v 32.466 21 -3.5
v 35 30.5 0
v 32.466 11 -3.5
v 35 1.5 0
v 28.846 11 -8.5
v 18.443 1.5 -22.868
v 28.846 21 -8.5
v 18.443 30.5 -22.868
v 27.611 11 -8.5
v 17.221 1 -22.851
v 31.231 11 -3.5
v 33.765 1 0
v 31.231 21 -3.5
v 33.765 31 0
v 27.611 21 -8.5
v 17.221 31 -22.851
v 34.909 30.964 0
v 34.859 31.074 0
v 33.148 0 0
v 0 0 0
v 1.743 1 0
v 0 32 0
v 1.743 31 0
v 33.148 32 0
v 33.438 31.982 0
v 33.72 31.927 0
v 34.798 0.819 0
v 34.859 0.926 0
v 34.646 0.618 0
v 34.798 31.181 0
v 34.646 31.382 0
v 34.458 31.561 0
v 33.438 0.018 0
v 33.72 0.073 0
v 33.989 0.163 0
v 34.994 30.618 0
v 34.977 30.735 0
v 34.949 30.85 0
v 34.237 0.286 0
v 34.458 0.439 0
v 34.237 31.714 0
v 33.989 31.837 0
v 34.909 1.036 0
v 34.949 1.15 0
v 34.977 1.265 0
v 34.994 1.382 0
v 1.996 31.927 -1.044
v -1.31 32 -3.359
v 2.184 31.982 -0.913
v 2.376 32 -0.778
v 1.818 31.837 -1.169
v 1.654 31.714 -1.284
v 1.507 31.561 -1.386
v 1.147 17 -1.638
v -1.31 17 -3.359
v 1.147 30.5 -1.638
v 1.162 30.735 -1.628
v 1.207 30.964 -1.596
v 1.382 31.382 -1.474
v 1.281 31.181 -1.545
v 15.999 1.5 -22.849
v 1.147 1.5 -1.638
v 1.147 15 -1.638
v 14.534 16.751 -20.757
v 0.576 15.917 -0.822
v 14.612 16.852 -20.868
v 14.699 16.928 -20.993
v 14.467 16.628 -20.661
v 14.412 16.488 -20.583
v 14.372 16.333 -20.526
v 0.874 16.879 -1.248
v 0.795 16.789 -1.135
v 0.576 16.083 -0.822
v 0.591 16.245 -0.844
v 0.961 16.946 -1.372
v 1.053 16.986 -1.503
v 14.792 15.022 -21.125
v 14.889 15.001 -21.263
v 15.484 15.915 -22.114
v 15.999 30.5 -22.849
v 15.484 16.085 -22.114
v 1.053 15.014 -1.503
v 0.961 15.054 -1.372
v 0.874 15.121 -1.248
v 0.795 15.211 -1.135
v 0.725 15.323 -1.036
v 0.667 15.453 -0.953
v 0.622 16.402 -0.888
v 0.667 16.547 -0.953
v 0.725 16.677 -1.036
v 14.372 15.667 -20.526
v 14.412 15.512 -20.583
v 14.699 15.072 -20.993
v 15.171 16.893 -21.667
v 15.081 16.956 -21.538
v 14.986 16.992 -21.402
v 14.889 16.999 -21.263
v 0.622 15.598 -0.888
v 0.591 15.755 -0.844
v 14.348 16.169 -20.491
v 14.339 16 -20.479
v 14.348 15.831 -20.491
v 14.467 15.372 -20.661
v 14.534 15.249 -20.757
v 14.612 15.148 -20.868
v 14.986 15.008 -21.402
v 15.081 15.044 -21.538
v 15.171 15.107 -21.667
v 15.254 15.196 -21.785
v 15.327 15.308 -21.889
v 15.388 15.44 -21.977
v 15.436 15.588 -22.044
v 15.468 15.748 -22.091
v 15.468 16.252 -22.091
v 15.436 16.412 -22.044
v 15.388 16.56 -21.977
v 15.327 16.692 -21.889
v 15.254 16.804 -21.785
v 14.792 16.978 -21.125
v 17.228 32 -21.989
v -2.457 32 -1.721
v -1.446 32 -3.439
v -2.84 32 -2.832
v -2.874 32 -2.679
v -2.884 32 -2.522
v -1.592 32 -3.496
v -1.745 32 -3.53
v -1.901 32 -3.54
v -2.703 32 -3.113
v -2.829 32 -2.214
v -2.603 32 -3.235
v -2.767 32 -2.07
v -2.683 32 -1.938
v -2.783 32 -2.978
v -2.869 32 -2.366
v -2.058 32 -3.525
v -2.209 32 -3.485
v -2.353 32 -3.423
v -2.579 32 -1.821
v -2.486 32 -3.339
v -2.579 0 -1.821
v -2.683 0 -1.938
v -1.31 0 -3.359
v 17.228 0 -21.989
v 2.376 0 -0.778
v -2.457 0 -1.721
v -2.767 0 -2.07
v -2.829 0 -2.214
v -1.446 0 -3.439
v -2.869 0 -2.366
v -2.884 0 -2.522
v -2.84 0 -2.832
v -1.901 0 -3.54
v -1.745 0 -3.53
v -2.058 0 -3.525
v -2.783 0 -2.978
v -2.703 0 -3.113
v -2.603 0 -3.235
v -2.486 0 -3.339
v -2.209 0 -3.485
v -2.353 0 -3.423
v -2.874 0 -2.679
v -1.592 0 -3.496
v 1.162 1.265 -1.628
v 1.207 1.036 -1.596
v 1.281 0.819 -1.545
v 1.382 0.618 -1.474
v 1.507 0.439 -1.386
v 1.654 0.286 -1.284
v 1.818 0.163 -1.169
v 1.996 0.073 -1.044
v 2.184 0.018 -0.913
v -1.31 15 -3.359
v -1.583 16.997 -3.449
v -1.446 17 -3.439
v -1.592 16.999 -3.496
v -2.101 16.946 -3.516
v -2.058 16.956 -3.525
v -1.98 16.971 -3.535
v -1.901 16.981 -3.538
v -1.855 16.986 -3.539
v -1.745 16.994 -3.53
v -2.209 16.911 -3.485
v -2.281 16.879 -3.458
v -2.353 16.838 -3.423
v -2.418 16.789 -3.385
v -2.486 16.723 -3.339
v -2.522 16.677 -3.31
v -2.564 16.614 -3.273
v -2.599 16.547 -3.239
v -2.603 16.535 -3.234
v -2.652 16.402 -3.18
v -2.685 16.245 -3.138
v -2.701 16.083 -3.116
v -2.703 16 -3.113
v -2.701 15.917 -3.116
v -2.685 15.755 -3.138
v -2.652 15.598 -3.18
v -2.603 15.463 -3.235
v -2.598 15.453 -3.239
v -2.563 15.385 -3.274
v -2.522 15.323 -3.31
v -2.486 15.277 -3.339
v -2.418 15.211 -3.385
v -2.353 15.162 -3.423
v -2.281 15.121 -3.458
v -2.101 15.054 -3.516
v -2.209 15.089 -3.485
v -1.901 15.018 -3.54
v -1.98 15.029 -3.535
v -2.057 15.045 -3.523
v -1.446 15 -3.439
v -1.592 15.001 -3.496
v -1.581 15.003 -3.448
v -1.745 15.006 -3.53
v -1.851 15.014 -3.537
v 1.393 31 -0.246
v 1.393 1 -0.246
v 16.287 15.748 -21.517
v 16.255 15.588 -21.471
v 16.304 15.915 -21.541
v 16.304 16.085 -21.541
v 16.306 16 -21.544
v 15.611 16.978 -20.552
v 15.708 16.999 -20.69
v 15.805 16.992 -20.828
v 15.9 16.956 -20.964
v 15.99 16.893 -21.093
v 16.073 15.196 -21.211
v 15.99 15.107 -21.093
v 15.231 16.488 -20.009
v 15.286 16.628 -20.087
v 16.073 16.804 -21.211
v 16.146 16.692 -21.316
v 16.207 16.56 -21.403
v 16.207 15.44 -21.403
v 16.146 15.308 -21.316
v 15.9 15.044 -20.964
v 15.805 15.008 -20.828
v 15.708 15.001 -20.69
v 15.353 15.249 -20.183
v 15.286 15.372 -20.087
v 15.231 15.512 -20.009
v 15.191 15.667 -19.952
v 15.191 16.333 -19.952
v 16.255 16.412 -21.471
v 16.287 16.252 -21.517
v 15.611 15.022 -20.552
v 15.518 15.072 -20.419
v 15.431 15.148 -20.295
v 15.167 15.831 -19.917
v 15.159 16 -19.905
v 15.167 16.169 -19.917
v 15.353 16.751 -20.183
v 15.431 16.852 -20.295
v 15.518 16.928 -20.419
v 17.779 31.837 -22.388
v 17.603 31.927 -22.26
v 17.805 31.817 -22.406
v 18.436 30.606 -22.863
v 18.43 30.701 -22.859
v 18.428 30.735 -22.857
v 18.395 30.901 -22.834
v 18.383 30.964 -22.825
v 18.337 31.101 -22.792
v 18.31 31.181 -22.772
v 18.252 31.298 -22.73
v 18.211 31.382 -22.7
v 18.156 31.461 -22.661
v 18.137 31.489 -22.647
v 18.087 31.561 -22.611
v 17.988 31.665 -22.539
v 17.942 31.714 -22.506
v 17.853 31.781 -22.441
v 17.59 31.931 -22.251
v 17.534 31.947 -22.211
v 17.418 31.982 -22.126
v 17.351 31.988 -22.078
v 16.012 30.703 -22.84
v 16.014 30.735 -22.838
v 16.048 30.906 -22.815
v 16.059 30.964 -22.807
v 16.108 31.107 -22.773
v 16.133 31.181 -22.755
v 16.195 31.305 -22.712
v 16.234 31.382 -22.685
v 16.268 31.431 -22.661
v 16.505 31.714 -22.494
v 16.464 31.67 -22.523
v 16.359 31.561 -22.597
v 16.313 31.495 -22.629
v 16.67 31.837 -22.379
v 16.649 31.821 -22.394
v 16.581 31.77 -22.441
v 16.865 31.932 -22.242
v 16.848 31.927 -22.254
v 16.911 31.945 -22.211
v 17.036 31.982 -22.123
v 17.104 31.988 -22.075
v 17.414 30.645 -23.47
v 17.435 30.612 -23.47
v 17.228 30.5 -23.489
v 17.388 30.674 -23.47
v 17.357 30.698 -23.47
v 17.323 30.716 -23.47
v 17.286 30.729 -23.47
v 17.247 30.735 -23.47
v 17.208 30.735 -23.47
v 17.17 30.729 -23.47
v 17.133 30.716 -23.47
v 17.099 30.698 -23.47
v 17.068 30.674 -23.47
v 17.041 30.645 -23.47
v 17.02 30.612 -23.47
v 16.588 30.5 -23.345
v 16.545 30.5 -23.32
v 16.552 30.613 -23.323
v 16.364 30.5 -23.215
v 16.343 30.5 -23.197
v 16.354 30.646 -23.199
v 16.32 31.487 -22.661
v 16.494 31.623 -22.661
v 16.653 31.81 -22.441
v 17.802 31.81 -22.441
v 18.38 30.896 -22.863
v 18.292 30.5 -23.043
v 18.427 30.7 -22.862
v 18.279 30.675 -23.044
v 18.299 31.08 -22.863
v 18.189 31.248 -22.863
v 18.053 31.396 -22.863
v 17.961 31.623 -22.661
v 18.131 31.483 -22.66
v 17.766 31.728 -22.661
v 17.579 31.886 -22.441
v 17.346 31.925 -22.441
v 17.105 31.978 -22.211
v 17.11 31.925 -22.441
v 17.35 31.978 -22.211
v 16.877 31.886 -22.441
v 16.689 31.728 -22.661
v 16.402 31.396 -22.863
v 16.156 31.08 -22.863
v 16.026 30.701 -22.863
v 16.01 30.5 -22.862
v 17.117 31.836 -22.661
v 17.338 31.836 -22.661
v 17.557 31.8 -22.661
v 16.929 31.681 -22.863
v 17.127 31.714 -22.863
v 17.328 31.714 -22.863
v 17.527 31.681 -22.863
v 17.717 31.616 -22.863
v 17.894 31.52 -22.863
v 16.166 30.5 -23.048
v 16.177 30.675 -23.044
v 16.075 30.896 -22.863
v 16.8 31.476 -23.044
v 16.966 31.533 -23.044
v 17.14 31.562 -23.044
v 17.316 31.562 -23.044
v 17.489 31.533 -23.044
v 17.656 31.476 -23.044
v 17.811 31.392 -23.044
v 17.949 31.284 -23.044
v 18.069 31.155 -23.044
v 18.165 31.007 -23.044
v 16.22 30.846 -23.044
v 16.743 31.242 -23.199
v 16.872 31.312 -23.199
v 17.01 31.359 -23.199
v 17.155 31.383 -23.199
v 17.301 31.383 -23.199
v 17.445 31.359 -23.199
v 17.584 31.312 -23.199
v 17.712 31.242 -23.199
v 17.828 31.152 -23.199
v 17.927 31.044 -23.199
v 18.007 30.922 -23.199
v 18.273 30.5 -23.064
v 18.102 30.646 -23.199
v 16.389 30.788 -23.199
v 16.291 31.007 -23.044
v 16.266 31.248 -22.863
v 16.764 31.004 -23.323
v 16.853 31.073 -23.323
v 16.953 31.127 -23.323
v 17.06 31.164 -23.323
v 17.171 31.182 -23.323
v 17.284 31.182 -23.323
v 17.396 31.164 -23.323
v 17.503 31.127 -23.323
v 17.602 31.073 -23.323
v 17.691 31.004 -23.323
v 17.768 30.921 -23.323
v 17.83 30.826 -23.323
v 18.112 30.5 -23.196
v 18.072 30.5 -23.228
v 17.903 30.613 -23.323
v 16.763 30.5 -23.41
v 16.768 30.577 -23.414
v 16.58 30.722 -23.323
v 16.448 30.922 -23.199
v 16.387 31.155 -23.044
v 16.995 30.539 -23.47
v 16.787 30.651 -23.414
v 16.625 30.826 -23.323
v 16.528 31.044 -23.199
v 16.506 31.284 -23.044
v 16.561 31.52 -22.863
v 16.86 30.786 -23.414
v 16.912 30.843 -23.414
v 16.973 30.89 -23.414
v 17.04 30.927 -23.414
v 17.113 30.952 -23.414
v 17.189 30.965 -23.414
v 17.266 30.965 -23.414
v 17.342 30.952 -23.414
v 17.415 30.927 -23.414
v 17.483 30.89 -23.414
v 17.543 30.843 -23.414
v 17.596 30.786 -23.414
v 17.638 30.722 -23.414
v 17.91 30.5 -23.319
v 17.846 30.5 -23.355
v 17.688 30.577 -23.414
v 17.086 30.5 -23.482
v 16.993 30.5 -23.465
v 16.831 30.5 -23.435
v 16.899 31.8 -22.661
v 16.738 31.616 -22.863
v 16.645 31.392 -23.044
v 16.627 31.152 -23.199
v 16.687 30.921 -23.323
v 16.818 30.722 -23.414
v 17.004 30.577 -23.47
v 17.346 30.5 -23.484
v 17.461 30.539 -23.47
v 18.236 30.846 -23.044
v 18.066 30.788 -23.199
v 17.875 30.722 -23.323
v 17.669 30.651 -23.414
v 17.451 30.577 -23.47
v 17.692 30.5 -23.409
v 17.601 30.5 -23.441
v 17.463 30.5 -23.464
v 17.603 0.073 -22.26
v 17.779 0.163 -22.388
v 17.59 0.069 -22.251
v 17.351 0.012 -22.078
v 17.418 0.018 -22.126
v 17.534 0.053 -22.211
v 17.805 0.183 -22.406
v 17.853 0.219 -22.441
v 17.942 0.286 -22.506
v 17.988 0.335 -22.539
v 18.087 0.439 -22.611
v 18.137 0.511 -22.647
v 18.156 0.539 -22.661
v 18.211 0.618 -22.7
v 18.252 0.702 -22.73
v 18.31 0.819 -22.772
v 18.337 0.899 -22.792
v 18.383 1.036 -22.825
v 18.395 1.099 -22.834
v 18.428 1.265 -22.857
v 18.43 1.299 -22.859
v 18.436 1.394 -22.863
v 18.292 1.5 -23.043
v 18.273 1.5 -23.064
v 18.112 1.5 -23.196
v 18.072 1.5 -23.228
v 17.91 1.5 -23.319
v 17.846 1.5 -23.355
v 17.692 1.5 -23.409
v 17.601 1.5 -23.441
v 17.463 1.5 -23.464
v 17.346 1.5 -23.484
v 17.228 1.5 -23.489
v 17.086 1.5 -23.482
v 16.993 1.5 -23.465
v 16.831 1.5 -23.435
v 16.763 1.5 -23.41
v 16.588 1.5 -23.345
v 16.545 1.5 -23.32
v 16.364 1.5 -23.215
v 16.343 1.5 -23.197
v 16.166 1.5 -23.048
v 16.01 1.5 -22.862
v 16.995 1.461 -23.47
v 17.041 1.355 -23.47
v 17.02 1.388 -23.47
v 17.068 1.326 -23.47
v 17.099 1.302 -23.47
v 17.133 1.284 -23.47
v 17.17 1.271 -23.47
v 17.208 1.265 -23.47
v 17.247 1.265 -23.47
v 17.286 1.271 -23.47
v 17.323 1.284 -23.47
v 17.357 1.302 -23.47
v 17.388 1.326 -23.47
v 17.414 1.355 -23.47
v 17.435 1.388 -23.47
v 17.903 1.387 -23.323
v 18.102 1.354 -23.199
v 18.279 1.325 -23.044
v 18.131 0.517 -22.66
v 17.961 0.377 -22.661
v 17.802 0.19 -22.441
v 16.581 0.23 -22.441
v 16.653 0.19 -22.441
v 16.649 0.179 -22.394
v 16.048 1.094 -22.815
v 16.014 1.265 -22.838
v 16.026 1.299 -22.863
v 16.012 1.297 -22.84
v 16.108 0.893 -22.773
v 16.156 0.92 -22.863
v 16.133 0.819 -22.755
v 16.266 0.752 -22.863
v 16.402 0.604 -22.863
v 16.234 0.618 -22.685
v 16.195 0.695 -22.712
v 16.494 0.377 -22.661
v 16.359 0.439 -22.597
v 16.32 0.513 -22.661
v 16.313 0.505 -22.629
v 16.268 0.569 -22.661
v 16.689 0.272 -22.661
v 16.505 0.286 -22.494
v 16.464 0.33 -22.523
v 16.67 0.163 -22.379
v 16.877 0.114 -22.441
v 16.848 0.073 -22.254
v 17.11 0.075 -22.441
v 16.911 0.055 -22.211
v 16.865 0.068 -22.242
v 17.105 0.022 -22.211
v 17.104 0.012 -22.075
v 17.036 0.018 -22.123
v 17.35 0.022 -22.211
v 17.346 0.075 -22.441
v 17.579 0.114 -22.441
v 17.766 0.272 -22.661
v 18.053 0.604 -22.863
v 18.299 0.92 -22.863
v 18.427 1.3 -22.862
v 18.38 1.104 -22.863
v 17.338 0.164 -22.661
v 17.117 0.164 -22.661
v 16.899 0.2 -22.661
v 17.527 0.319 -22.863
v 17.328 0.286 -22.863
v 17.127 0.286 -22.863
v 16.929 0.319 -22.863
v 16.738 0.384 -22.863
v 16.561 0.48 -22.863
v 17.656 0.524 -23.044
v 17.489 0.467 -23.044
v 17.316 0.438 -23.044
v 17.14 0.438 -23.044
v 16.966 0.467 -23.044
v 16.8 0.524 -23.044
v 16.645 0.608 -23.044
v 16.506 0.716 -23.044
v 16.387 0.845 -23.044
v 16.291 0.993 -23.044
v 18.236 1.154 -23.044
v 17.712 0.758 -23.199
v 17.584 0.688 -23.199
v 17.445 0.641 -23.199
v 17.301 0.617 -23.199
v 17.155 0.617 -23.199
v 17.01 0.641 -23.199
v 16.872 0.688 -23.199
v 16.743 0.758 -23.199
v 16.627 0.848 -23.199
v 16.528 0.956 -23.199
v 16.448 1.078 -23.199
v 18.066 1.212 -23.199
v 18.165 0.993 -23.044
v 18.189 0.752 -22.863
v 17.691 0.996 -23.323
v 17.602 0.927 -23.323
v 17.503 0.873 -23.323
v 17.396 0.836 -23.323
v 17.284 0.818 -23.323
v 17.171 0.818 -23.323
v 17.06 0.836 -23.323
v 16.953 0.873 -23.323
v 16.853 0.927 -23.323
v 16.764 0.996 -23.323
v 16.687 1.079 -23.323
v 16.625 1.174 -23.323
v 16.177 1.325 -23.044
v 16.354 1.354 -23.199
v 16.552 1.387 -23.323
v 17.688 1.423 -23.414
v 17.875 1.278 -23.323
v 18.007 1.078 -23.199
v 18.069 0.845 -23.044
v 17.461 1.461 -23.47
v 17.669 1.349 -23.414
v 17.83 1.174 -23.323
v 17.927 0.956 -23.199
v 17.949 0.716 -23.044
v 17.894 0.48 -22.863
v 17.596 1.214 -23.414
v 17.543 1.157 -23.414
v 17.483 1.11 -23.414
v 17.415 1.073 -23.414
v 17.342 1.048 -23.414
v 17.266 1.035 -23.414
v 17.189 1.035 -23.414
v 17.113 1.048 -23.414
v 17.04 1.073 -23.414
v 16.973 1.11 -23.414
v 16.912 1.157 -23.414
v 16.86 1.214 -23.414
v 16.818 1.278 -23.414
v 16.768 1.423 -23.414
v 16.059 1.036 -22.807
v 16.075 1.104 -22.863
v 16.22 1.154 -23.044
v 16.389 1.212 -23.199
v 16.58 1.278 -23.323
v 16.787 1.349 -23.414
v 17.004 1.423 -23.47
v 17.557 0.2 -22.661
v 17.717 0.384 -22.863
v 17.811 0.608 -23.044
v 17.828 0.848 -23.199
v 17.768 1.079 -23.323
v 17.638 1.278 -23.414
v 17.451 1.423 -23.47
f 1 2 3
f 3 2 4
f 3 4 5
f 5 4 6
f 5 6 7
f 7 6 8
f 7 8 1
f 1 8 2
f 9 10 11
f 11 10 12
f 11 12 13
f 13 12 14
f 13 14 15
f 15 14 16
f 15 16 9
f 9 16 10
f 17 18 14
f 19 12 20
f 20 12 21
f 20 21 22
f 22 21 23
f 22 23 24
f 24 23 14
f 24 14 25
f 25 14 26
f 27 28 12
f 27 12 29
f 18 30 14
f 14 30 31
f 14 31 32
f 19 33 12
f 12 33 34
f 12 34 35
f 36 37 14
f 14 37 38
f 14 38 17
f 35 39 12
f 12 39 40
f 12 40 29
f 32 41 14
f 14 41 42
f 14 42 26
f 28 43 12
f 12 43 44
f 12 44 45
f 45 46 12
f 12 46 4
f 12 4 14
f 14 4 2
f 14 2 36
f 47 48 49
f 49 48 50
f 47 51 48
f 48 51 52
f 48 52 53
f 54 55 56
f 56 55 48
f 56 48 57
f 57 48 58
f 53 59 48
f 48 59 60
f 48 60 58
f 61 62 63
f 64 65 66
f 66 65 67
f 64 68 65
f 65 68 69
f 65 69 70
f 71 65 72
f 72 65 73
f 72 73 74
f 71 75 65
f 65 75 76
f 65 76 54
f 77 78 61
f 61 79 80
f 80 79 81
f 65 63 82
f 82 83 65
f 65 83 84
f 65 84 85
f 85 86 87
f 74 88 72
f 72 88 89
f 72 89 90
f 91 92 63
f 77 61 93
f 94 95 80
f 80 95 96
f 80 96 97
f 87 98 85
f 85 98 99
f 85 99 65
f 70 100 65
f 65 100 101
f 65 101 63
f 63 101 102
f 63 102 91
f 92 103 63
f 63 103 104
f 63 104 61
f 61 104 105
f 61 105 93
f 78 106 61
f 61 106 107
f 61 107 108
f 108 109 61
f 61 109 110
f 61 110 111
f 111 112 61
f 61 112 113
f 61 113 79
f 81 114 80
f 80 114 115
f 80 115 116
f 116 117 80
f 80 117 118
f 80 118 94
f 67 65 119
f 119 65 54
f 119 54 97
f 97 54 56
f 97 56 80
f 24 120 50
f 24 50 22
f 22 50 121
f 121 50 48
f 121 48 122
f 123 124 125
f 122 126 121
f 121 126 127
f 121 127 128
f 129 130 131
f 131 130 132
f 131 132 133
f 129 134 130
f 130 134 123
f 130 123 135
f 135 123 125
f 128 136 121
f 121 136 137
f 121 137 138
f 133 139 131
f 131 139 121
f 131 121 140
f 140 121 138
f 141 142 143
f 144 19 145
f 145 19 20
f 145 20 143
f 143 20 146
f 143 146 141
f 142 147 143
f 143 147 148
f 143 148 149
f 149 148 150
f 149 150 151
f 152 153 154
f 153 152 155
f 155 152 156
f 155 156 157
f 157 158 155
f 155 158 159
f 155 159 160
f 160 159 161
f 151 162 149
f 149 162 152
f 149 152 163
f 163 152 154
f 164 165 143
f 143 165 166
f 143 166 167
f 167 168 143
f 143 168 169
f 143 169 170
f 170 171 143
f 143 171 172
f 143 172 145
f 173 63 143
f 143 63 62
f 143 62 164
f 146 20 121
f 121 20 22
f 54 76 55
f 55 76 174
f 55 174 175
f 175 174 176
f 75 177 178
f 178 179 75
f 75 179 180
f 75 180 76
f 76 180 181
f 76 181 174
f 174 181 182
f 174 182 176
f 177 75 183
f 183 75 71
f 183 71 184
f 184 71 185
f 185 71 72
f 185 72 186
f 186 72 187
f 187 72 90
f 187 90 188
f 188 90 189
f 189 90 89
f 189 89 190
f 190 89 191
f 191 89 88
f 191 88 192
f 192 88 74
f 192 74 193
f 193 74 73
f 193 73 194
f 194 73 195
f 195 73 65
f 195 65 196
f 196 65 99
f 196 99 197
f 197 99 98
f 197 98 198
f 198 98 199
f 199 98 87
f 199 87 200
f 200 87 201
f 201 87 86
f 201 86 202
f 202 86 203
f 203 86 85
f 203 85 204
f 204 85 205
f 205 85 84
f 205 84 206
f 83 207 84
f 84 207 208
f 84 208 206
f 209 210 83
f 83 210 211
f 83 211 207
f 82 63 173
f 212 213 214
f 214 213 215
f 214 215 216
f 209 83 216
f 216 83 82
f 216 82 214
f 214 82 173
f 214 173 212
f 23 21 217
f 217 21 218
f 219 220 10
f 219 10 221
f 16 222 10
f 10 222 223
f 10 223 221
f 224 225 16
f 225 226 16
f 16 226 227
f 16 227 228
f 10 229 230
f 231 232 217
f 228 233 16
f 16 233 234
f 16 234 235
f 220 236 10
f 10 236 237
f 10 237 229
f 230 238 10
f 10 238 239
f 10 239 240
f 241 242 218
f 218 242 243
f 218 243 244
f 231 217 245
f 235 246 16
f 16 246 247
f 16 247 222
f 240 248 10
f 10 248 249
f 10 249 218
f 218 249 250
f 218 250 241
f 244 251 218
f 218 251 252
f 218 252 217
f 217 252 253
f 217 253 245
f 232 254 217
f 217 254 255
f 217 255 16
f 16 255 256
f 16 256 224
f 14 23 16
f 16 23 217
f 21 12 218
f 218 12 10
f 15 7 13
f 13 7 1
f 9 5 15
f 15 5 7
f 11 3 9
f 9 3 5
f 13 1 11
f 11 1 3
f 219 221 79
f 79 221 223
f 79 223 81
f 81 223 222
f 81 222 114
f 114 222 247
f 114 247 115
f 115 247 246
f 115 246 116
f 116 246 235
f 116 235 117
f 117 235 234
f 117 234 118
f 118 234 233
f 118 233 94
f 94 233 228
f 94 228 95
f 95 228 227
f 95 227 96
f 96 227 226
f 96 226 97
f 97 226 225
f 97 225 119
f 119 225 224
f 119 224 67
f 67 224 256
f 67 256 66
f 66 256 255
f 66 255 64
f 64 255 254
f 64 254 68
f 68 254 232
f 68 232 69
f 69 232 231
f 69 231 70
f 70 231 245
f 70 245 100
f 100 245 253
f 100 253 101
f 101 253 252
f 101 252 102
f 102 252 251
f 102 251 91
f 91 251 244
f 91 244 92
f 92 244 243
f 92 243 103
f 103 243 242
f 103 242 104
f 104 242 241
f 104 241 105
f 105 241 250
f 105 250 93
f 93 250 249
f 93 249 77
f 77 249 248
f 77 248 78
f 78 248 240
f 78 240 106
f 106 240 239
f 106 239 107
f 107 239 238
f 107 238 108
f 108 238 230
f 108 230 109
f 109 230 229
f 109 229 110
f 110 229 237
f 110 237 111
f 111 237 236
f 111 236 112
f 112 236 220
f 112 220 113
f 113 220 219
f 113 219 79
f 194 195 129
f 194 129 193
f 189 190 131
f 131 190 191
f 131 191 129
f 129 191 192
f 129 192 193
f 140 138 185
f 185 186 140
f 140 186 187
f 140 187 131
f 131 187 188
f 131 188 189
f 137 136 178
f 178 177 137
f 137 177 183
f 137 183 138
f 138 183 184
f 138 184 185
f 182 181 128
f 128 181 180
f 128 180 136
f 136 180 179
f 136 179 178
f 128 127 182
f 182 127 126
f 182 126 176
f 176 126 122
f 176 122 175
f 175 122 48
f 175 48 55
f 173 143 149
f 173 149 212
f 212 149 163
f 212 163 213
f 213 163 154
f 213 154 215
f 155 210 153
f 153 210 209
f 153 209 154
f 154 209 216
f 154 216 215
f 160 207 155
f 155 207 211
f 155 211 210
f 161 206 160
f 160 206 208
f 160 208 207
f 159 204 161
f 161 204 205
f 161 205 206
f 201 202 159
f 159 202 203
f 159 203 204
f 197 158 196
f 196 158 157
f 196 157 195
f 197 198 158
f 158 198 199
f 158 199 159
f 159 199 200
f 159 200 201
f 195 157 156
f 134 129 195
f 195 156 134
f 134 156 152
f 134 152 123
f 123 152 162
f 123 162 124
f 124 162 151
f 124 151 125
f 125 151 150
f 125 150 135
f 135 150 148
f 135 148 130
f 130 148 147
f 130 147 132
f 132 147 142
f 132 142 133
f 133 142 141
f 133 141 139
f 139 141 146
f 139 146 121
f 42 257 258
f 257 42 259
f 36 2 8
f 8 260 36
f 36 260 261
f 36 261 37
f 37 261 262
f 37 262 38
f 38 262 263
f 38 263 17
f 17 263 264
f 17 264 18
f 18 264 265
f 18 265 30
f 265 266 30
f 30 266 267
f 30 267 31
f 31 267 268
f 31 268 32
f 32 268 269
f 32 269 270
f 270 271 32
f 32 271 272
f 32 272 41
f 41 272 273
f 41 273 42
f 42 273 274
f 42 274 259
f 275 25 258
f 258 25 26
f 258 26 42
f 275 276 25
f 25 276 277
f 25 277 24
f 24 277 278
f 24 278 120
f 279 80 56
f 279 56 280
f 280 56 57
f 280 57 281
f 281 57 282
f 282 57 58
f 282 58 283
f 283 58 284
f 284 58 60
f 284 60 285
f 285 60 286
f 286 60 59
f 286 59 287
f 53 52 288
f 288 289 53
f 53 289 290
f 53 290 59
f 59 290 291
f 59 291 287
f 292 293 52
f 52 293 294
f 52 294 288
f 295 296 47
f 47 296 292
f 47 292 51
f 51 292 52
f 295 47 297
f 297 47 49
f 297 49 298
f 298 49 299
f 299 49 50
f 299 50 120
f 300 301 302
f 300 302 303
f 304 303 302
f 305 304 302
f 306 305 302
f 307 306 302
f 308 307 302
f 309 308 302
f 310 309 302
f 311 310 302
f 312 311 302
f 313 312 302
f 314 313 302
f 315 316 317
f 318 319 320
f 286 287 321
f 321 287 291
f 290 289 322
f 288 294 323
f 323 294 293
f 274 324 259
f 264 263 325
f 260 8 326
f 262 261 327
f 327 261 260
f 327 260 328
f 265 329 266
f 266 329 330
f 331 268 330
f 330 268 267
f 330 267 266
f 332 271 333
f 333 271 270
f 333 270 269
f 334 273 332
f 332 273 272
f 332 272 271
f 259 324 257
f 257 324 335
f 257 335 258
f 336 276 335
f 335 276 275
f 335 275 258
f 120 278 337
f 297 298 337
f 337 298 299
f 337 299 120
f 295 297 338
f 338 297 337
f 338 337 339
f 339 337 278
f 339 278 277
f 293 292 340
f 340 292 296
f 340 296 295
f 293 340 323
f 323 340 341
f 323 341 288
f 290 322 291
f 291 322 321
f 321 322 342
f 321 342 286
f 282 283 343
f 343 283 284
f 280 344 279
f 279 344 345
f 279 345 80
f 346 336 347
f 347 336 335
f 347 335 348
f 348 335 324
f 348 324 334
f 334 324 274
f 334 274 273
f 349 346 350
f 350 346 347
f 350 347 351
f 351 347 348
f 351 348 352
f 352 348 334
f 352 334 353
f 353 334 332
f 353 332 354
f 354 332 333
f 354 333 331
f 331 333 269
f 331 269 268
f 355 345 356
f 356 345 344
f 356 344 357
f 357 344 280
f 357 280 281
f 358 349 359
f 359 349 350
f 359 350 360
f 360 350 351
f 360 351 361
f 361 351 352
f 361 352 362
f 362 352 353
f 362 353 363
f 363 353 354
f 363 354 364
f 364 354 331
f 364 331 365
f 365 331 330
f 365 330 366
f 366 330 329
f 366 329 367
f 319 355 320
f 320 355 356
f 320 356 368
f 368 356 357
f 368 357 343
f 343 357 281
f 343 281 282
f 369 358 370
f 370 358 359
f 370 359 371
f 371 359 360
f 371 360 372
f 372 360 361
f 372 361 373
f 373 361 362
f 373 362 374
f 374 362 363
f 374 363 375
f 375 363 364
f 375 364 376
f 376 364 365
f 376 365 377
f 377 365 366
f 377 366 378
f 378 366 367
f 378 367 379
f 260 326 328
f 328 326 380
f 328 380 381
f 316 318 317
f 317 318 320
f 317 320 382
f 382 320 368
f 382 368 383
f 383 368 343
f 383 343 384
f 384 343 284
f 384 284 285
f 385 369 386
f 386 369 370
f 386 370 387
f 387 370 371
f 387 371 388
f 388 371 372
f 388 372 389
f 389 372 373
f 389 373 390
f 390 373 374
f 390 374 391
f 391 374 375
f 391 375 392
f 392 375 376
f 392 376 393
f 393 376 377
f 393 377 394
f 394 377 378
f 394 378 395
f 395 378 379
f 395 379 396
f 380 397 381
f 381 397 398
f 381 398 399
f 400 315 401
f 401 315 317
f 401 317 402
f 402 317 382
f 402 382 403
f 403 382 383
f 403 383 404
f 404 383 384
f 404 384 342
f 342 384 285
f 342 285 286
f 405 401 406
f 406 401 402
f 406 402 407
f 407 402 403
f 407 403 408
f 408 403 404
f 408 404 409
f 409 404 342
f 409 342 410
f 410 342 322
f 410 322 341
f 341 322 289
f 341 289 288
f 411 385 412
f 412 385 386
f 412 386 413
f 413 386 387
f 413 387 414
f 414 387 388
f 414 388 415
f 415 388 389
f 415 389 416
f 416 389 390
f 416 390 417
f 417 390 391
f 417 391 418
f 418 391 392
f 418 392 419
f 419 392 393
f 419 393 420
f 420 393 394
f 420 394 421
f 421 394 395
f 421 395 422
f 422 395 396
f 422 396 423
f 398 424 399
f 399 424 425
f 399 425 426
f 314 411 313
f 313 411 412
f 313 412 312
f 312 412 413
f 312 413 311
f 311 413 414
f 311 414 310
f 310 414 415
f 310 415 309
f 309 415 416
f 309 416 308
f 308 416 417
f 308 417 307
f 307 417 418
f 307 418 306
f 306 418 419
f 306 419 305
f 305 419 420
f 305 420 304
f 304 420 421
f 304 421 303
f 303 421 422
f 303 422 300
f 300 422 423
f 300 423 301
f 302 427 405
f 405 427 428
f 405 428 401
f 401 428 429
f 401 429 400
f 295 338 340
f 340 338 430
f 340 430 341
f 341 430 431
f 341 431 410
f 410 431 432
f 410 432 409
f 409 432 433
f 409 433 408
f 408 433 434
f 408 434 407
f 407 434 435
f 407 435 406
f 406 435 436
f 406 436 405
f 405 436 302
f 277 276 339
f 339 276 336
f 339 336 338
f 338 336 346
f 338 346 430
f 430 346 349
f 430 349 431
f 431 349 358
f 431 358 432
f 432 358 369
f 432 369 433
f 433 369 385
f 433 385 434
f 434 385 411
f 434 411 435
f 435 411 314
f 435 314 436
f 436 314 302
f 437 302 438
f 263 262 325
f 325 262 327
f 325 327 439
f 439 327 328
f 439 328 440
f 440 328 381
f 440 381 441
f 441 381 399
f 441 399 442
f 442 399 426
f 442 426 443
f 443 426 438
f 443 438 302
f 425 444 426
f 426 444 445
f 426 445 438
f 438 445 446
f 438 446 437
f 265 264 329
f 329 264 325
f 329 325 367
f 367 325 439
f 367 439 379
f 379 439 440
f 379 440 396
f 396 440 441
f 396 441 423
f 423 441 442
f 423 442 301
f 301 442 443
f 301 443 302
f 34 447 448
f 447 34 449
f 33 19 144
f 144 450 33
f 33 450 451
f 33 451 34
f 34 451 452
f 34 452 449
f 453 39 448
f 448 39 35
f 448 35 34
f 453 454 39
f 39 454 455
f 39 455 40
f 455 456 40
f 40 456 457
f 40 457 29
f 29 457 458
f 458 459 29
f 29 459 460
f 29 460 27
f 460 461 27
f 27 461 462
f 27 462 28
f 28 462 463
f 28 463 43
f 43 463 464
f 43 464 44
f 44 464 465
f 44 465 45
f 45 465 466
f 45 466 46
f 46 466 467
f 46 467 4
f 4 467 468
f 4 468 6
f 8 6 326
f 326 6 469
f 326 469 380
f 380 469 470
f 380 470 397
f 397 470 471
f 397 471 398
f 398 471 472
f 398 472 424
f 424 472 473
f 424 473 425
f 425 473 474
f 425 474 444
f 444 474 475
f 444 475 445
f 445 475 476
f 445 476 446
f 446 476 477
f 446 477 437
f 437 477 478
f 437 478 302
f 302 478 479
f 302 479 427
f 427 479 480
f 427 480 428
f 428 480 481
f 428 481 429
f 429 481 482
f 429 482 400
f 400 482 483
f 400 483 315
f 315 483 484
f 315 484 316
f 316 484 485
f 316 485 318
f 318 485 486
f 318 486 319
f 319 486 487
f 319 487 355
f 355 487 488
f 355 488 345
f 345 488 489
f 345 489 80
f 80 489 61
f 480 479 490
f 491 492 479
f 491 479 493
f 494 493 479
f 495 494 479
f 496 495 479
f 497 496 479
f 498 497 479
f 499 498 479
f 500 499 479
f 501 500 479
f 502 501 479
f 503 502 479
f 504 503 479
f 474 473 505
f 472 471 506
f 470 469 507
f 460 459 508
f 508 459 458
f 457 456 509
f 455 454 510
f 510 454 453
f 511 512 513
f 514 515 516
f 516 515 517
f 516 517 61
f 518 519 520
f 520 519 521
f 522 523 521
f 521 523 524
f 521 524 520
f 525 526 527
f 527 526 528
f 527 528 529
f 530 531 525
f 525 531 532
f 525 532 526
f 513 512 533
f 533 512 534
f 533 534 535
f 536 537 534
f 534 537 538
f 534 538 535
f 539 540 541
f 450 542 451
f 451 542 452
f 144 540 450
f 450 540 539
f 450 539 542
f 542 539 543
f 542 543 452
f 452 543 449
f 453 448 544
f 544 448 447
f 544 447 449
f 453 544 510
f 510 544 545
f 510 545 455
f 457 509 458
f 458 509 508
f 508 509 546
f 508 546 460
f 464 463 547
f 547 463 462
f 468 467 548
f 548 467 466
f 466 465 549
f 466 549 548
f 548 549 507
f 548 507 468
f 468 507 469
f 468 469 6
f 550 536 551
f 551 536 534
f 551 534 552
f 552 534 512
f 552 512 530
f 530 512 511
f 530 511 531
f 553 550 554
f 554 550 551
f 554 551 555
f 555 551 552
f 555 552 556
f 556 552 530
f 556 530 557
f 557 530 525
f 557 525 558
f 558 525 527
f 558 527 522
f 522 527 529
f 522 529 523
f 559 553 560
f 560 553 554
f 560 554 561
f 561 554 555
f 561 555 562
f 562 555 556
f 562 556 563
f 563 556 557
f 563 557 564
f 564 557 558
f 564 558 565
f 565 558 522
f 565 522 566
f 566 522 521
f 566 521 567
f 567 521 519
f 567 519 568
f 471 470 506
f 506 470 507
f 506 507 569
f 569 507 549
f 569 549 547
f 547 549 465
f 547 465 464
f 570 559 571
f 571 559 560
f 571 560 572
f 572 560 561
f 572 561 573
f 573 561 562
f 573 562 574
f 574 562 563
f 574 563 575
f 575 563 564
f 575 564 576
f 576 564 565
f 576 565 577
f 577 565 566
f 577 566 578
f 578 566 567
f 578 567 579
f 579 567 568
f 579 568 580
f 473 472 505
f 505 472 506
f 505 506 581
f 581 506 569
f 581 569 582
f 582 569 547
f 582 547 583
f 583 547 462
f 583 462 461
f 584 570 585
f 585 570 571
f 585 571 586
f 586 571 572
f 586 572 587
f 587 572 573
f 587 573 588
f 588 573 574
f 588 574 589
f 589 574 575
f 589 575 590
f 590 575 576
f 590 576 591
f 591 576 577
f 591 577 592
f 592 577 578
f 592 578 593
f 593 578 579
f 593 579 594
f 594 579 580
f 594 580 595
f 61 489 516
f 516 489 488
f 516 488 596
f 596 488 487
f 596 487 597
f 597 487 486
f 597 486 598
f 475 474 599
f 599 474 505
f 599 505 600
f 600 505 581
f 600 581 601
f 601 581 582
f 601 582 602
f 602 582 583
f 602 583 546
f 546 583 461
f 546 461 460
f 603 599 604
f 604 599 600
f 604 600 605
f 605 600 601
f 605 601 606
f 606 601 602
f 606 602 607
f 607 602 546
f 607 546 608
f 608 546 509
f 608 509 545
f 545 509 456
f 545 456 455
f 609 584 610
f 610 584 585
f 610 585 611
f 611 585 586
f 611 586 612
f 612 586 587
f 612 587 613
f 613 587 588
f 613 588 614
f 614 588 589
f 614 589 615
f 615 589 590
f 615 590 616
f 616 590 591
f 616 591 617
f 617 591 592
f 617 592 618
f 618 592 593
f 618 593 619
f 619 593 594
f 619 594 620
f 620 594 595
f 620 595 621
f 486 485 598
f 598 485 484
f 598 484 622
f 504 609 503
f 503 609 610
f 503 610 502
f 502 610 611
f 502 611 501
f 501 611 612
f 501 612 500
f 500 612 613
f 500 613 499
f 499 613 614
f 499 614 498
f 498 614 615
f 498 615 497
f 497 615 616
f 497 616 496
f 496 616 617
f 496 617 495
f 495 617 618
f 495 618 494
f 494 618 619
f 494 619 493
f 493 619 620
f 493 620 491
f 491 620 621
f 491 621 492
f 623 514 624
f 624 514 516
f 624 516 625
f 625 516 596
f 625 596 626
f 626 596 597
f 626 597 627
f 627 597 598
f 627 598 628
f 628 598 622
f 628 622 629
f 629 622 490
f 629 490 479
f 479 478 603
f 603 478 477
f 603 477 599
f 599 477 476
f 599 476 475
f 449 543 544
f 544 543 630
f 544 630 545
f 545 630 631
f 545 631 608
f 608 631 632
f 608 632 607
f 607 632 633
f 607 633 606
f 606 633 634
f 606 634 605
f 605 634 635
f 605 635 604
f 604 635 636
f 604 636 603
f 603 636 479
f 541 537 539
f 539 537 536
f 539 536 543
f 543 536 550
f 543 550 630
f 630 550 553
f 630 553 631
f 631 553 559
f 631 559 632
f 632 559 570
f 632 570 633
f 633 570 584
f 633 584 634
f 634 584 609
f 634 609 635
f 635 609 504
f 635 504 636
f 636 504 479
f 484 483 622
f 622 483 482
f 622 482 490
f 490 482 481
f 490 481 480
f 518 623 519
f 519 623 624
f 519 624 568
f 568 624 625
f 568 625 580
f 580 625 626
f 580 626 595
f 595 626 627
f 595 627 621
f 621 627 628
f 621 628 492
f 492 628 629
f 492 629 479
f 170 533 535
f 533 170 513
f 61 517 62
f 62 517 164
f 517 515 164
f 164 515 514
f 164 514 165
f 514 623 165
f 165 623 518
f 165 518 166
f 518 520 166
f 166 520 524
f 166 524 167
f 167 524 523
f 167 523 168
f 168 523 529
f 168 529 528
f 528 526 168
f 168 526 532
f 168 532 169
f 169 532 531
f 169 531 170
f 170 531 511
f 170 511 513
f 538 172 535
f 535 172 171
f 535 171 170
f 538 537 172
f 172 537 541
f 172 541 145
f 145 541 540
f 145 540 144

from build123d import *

# Parameters (mm, degrees)
EXTRUDE_1_DEPTH     = 32
EXTRUDE_2_DEPTH     = 32
CUT_EXTRUDE_1_DEPTH = 4
SHELL_START         = 1
SHELL_1_DEPTH       = 30
CUT_EXTRUDE_START   = 27.611157
SKETCH_4_W          = 5
SKETCH_4_H          = 10
CUT_EXTRUDE_2_DEPTH = 4.85474
CUT_EXTRUDE_3_REACH = 55.413
SKETCH_6_R          = 1
FILLET_1_R          = 1
FILLET_2_R          = 1
FILLET_3_R          = 1.5


# Read off the part's stored shape, not the designer's step: 抽壳1
with BuildPart() as part:
    # 草图1 → 凸台-拉伸1 (new body)
    with BuildSketch(Plane(origin=(0, 0, 0), x_dir=(1, 0, 0), z_dir=(0, 1, 0))):
        Polygon((0, 0), (35, 0), (17.207293091, 24.574561329), align=None)
    extrude(amount=EXTRUDE_1_DEPTH)

    # 草图2 → 凸台-拉伸2 (add)
    with BuildSketch(Plane(origin=(0, 0, 0), x_dir=(1, 0, 0), z_dir=(0, 1, 0))):
        Polygon((0, 0), (-3.276608177, 2.294305745), (-2.129455304, 3.932609834), (1.147152873, 1.638304089), align=None)
    extrude(amount=EXTRUDE_2_DEPTH)

    # 草图3 → 切除-拉伸1 (cut)
    with BuildSketch(Plane(origin=(-3.276608177, 0, -2.294305745), x_dir=(-0.5735764363510533, 0, 0.8191520442889868), z_dir=(-0.8191520442889868, 0, -0.5735764363510533))):
        with BuildLine():
            Line((-2, 17), (-2, 15))
            ThreePointArc((-2, 15), (-1, 16), (-2, 17))
        make_face()
    extrude(amount=-CUT_EXTRUDE_1_DEPTH, mode=Mode.SUBTRACT)

    # 抽壳1 outline → 抽壳1 (cut)
    with BuildSketch(Plane(origin=(0, 0, 0), x_dir=(1, 0, 0), z_dir=(0, 1, 0)).offset(SHELL_START)):
        Polygon((1.392728481, 0.245575608), (1.743446796, 0), (33.76540748, 0), (17.220918494, 22.850573626), align=None)
    extrude(amount=SHELL_1_DEPTH, mode=Mode.SUBTRACT)

    # 草图4 → 切除-拉伸2 (cut)
    with BuildSketch(Plane(origin=(0, 0, 0), x_dir=(0, 0, -1), z_dir=(1, 0, 0)).offset(CUT_EXTRUDE_START)):
        with Locations((6, 16)):
            Rectangle(SKETCH_4_W, SKETCH_4_H)
    extrude(amount=CUT_EXTRUDE_2_DEPTH, mode=Mode.SUBTRACT)

    # 草图6 → 切除-拉伸3 (cut, up to next)
    with BuildSketch(Plane(origin=(0, 0, 0), x_dir=(-0.5735764363510502, 0, 0.819152044288989), z_dir=(-0.819152044288989, 0, -0.5735764363510502)), mode=Mode.PRIVATE) as cut_extrude_3_sk1:
        with Locations((-26, 16)):
            Circle(SKETCH_6_R)
    cut_extrude_3_tool1 = extrude(cut_extrude_3_sk1.sketch, amount=-CUT_EXTRUDE_3_REACH, mode=Mode.PRIVATE) & part.part
    add(cut_extrude_3_tool1.solids().sort_by_distance((14.912987, 16, -21.297953))[0], mode=Mode.SUBTRACT)

    # 圆角1
    fillet_1_edges = [part.edges().sort_by_distance(p)[0] for p in [
        (-2.129455304, 24.5, -3.932609834),
        (-2.129455304, 7.5, -3.932609834),
    ]]
    fillet(fillet_1_edges, radius=FILLET_1_R - 0.0001)  # a hair under: the kernel refuses the full size

    # 圆角2
    fillet_2_edges = [part.edges().sort_by_distance(p)[0] for p in [
        (-3.276608177, 16, -2.294305745),
    ]]
    fillet(fillet_2_edges, radius=FILLET_2_R - 0.0001)  # a hair under: the kernel refuses the full size

    # 圆角3
    fillet_3_edges = [part.edges().sort_by_distance(p)[0] for p in [
        (26.103646545, 32, -12.287280664),
        (26.103646545, 0, -12.287280664),
        (9.177222982, 32, -13.106432709),
        (9.177222982, 0, -13.106432709),
        (17.207293091, 16, -24.574561329),
    ]]
    fillet(fillet_3_edges, radius=FILLET_3_R)


solid = part.part
